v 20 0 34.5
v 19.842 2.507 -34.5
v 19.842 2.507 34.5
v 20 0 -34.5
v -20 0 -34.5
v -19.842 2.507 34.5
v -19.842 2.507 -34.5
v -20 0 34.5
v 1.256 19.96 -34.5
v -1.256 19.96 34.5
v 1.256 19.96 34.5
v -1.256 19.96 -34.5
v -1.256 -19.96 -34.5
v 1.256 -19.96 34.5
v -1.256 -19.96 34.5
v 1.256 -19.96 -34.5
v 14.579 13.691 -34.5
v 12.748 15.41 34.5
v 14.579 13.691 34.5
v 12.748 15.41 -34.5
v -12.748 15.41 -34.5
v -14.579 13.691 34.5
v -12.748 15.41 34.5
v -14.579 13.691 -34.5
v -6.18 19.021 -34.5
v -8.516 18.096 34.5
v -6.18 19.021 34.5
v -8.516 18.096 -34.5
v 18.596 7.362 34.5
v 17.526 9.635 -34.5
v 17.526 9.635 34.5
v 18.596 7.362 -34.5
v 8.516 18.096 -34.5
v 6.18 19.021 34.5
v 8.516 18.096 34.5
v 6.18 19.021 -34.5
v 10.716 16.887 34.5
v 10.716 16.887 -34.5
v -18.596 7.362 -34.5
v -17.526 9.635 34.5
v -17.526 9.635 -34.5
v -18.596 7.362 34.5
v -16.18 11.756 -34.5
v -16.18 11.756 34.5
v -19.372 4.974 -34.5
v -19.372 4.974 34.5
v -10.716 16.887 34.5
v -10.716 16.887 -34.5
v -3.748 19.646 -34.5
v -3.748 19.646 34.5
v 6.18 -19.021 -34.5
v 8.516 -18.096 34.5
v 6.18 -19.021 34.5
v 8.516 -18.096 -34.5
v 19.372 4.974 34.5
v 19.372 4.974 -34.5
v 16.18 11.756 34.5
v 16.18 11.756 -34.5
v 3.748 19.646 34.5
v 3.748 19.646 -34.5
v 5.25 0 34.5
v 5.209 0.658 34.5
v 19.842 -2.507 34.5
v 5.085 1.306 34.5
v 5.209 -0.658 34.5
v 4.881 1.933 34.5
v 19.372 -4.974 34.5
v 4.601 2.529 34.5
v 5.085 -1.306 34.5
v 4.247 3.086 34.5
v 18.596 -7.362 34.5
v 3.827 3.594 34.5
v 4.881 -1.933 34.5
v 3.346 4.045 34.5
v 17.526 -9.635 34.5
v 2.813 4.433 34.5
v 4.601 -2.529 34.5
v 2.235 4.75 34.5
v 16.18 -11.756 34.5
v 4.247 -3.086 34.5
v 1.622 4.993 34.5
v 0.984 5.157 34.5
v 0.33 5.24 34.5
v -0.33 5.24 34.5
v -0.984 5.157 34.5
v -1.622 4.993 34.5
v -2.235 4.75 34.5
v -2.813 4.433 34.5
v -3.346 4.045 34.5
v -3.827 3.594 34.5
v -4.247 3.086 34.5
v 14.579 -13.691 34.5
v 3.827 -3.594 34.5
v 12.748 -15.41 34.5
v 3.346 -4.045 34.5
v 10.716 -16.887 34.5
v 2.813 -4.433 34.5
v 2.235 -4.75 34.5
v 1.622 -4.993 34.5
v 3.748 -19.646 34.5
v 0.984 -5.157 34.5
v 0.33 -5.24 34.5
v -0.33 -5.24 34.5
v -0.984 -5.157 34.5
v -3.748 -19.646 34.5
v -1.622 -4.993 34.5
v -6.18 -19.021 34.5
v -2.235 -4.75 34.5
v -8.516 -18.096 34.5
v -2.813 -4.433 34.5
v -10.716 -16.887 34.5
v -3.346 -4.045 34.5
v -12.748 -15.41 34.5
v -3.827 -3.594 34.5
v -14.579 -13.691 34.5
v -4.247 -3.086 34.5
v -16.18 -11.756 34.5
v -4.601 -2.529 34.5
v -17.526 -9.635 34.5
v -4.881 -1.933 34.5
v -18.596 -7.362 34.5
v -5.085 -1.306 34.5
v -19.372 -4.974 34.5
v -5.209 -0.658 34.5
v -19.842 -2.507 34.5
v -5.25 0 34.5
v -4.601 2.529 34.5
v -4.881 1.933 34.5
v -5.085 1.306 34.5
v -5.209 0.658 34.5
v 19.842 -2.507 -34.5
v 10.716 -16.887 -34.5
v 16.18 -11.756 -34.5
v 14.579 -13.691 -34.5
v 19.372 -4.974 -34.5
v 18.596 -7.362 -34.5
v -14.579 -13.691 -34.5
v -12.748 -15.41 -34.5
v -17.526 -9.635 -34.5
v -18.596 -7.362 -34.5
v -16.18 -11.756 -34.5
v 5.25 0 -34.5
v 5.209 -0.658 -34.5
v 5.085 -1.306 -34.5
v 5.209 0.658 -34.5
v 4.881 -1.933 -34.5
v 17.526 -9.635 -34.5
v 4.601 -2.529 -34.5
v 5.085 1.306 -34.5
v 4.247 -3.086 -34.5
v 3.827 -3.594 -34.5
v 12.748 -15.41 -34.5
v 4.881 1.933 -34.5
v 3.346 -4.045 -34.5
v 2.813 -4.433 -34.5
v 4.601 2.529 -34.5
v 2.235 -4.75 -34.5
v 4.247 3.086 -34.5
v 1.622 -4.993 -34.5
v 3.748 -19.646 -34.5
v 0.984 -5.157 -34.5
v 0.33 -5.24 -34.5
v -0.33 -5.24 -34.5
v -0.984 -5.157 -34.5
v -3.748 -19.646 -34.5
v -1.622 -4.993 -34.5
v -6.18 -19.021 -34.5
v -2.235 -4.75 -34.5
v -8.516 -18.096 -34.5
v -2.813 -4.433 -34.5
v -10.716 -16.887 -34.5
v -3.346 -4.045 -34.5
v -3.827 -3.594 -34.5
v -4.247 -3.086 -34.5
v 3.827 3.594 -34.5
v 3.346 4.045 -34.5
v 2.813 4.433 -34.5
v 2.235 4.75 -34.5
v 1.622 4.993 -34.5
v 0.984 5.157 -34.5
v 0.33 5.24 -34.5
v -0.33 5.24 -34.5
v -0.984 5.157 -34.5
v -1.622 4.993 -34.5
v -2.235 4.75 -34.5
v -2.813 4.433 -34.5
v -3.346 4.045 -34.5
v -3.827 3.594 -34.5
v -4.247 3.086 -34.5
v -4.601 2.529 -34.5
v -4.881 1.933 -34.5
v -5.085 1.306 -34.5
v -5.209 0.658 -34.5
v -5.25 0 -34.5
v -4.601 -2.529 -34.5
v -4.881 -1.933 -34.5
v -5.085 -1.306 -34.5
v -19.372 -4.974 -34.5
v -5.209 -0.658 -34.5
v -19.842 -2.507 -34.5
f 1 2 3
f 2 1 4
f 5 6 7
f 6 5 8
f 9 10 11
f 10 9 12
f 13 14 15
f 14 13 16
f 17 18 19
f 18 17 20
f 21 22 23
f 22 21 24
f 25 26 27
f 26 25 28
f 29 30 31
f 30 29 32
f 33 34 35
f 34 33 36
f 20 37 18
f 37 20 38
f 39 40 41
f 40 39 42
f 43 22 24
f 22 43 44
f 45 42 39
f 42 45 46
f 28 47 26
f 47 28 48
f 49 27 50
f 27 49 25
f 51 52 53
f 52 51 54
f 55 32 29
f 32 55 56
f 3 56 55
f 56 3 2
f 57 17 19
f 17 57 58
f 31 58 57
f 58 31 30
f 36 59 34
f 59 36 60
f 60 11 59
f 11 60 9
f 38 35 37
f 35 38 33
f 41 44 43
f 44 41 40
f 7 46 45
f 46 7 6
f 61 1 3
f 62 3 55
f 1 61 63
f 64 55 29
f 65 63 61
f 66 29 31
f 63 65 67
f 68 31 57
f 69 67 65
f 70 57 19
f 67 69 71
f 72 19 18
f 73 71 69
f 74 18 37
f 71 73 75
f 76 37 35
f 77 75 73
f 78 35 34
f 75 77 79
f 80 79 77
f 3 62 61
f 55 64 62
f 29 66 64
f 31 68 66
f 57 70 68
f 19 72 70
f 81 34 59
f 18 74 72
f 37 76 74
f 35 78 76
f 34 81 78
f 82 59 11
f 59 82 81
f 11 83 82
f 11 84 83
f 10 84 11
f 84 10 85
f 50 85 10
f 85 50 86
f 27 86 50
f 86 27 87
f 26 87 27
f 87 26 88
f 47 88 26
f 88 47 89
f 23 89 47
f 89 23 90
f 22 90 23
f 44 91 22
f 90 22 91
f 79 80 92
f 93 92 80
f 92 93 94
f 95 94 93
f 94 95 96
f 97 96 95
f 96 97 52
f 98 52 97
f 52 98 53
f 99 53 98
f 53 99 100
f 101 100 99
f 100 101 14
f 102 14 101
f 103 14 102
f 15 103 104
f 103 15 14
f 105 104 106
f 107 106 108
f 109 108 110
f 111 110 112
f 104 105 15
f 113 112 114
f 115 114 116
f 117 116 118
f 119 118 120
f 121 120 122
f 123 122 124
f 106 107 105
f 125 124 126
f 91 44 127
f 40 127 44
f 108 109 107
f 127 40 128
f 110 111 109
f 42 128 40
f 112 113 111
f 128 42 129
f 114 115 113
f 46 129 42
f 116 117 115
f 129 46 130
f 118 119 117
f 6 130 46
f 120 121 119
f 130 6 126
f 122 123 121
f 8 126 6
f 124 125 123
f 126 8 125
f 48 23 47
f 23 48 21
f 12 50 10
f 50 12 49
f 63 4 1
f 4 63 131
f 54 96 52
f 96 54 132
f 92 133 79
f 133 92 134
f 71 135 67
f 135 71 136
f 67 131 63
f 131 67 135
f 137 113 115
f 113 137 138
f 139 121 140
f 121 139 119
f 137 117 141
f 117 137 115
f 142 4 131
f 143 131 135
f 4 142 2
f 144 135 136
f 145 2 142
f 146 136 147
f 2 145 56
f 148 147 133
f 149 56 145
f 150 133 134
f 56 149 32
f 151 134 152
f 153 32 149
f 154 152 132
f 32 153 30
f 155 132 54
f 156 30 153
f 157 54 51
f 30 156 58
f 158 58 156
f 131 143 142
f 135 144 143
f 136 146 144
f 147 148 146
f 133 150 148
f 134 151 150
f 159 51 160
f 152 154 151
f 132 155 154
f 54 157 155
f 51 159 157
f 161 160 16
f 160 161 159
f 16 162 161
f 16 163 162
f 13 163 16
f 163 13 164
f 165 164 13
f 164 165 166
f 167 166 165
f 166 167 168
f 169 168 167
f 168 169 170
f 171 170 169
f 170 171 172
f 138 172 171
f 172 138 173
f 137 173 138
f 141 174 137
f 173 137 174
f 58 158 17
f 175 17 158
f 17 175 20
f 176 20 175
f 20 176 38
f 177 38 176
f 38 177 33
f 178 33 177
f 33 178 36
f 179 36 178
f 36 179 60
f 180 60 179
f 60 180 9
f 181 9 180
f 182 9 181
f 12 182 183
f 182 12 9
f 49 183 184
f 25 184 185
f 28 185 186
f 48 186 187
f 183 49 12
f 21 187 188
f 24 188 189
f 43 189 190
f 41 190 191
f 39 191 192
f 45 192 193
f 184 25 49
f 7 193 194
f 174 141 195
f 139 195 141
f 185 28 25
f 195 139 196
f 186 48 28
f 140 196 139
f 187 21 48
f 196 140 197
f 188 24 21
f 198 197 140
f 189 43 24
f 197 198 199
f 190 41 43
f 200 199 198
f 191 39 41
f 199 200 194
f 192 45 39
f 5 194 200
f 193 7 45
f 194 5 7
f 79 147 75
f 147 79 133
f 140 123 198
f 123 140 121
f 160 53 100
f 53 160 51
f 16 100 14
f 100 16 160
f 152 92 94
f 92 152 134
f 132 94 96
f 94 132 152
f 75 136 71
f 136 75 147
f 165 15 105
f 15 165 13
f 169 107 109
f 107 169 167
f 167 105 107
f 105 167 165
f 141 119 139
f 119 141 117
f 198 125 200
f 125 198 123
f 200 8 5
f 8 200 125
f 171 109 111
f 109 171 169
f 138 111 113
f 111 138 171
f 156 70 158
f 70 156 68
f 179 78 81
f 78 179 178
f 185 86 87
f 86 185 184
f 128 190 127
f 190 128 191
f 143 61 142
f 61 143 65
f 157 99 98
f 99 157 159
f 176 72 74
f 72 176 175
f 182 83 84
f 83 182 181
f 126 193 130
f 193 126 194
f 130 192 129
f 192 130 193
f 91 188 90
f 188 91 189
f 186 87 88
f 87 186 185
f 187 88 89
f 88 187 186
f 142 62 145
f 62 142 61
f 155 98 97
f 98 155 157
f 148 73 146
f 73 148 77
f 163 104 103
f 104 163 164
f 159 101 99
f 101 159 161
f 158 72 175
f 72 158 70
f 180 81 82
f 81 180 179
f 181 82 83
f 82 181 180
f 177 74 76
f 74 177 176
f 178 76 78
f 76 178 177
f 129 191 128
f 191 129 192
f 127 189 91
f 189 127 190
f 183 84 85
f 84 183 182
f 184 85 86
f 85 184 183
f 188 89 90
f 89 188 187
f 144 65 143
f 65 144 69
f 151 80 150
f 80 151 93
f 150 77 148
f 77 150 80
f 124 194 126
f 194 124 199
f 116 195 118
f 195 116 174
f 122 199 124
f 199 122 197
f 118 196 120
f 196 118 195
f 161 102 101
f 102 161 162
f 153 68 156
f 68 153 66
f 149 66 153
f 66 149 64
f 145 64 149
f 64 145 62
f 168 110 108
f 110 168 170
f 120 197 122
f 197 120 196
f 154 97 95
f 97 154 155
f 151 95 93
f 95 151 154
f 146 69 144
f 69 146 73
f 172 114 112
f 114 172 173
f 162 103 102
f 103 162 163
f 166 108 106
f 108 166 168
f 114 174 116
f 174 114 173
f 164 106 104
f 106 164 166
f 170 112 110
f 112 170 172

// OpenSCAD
$fn = 50;


difference() {
	union() {
		translate(v = [0, 0, -34.5000000000]) {
			cylinder(h = 69, r = 20.0000000000);
		}
	}
	union() {
		translate(v = [0, 0, -100.0000000000]) {
			cylinder(h = 200, r = 5.2500000000);
		}
	}
}
